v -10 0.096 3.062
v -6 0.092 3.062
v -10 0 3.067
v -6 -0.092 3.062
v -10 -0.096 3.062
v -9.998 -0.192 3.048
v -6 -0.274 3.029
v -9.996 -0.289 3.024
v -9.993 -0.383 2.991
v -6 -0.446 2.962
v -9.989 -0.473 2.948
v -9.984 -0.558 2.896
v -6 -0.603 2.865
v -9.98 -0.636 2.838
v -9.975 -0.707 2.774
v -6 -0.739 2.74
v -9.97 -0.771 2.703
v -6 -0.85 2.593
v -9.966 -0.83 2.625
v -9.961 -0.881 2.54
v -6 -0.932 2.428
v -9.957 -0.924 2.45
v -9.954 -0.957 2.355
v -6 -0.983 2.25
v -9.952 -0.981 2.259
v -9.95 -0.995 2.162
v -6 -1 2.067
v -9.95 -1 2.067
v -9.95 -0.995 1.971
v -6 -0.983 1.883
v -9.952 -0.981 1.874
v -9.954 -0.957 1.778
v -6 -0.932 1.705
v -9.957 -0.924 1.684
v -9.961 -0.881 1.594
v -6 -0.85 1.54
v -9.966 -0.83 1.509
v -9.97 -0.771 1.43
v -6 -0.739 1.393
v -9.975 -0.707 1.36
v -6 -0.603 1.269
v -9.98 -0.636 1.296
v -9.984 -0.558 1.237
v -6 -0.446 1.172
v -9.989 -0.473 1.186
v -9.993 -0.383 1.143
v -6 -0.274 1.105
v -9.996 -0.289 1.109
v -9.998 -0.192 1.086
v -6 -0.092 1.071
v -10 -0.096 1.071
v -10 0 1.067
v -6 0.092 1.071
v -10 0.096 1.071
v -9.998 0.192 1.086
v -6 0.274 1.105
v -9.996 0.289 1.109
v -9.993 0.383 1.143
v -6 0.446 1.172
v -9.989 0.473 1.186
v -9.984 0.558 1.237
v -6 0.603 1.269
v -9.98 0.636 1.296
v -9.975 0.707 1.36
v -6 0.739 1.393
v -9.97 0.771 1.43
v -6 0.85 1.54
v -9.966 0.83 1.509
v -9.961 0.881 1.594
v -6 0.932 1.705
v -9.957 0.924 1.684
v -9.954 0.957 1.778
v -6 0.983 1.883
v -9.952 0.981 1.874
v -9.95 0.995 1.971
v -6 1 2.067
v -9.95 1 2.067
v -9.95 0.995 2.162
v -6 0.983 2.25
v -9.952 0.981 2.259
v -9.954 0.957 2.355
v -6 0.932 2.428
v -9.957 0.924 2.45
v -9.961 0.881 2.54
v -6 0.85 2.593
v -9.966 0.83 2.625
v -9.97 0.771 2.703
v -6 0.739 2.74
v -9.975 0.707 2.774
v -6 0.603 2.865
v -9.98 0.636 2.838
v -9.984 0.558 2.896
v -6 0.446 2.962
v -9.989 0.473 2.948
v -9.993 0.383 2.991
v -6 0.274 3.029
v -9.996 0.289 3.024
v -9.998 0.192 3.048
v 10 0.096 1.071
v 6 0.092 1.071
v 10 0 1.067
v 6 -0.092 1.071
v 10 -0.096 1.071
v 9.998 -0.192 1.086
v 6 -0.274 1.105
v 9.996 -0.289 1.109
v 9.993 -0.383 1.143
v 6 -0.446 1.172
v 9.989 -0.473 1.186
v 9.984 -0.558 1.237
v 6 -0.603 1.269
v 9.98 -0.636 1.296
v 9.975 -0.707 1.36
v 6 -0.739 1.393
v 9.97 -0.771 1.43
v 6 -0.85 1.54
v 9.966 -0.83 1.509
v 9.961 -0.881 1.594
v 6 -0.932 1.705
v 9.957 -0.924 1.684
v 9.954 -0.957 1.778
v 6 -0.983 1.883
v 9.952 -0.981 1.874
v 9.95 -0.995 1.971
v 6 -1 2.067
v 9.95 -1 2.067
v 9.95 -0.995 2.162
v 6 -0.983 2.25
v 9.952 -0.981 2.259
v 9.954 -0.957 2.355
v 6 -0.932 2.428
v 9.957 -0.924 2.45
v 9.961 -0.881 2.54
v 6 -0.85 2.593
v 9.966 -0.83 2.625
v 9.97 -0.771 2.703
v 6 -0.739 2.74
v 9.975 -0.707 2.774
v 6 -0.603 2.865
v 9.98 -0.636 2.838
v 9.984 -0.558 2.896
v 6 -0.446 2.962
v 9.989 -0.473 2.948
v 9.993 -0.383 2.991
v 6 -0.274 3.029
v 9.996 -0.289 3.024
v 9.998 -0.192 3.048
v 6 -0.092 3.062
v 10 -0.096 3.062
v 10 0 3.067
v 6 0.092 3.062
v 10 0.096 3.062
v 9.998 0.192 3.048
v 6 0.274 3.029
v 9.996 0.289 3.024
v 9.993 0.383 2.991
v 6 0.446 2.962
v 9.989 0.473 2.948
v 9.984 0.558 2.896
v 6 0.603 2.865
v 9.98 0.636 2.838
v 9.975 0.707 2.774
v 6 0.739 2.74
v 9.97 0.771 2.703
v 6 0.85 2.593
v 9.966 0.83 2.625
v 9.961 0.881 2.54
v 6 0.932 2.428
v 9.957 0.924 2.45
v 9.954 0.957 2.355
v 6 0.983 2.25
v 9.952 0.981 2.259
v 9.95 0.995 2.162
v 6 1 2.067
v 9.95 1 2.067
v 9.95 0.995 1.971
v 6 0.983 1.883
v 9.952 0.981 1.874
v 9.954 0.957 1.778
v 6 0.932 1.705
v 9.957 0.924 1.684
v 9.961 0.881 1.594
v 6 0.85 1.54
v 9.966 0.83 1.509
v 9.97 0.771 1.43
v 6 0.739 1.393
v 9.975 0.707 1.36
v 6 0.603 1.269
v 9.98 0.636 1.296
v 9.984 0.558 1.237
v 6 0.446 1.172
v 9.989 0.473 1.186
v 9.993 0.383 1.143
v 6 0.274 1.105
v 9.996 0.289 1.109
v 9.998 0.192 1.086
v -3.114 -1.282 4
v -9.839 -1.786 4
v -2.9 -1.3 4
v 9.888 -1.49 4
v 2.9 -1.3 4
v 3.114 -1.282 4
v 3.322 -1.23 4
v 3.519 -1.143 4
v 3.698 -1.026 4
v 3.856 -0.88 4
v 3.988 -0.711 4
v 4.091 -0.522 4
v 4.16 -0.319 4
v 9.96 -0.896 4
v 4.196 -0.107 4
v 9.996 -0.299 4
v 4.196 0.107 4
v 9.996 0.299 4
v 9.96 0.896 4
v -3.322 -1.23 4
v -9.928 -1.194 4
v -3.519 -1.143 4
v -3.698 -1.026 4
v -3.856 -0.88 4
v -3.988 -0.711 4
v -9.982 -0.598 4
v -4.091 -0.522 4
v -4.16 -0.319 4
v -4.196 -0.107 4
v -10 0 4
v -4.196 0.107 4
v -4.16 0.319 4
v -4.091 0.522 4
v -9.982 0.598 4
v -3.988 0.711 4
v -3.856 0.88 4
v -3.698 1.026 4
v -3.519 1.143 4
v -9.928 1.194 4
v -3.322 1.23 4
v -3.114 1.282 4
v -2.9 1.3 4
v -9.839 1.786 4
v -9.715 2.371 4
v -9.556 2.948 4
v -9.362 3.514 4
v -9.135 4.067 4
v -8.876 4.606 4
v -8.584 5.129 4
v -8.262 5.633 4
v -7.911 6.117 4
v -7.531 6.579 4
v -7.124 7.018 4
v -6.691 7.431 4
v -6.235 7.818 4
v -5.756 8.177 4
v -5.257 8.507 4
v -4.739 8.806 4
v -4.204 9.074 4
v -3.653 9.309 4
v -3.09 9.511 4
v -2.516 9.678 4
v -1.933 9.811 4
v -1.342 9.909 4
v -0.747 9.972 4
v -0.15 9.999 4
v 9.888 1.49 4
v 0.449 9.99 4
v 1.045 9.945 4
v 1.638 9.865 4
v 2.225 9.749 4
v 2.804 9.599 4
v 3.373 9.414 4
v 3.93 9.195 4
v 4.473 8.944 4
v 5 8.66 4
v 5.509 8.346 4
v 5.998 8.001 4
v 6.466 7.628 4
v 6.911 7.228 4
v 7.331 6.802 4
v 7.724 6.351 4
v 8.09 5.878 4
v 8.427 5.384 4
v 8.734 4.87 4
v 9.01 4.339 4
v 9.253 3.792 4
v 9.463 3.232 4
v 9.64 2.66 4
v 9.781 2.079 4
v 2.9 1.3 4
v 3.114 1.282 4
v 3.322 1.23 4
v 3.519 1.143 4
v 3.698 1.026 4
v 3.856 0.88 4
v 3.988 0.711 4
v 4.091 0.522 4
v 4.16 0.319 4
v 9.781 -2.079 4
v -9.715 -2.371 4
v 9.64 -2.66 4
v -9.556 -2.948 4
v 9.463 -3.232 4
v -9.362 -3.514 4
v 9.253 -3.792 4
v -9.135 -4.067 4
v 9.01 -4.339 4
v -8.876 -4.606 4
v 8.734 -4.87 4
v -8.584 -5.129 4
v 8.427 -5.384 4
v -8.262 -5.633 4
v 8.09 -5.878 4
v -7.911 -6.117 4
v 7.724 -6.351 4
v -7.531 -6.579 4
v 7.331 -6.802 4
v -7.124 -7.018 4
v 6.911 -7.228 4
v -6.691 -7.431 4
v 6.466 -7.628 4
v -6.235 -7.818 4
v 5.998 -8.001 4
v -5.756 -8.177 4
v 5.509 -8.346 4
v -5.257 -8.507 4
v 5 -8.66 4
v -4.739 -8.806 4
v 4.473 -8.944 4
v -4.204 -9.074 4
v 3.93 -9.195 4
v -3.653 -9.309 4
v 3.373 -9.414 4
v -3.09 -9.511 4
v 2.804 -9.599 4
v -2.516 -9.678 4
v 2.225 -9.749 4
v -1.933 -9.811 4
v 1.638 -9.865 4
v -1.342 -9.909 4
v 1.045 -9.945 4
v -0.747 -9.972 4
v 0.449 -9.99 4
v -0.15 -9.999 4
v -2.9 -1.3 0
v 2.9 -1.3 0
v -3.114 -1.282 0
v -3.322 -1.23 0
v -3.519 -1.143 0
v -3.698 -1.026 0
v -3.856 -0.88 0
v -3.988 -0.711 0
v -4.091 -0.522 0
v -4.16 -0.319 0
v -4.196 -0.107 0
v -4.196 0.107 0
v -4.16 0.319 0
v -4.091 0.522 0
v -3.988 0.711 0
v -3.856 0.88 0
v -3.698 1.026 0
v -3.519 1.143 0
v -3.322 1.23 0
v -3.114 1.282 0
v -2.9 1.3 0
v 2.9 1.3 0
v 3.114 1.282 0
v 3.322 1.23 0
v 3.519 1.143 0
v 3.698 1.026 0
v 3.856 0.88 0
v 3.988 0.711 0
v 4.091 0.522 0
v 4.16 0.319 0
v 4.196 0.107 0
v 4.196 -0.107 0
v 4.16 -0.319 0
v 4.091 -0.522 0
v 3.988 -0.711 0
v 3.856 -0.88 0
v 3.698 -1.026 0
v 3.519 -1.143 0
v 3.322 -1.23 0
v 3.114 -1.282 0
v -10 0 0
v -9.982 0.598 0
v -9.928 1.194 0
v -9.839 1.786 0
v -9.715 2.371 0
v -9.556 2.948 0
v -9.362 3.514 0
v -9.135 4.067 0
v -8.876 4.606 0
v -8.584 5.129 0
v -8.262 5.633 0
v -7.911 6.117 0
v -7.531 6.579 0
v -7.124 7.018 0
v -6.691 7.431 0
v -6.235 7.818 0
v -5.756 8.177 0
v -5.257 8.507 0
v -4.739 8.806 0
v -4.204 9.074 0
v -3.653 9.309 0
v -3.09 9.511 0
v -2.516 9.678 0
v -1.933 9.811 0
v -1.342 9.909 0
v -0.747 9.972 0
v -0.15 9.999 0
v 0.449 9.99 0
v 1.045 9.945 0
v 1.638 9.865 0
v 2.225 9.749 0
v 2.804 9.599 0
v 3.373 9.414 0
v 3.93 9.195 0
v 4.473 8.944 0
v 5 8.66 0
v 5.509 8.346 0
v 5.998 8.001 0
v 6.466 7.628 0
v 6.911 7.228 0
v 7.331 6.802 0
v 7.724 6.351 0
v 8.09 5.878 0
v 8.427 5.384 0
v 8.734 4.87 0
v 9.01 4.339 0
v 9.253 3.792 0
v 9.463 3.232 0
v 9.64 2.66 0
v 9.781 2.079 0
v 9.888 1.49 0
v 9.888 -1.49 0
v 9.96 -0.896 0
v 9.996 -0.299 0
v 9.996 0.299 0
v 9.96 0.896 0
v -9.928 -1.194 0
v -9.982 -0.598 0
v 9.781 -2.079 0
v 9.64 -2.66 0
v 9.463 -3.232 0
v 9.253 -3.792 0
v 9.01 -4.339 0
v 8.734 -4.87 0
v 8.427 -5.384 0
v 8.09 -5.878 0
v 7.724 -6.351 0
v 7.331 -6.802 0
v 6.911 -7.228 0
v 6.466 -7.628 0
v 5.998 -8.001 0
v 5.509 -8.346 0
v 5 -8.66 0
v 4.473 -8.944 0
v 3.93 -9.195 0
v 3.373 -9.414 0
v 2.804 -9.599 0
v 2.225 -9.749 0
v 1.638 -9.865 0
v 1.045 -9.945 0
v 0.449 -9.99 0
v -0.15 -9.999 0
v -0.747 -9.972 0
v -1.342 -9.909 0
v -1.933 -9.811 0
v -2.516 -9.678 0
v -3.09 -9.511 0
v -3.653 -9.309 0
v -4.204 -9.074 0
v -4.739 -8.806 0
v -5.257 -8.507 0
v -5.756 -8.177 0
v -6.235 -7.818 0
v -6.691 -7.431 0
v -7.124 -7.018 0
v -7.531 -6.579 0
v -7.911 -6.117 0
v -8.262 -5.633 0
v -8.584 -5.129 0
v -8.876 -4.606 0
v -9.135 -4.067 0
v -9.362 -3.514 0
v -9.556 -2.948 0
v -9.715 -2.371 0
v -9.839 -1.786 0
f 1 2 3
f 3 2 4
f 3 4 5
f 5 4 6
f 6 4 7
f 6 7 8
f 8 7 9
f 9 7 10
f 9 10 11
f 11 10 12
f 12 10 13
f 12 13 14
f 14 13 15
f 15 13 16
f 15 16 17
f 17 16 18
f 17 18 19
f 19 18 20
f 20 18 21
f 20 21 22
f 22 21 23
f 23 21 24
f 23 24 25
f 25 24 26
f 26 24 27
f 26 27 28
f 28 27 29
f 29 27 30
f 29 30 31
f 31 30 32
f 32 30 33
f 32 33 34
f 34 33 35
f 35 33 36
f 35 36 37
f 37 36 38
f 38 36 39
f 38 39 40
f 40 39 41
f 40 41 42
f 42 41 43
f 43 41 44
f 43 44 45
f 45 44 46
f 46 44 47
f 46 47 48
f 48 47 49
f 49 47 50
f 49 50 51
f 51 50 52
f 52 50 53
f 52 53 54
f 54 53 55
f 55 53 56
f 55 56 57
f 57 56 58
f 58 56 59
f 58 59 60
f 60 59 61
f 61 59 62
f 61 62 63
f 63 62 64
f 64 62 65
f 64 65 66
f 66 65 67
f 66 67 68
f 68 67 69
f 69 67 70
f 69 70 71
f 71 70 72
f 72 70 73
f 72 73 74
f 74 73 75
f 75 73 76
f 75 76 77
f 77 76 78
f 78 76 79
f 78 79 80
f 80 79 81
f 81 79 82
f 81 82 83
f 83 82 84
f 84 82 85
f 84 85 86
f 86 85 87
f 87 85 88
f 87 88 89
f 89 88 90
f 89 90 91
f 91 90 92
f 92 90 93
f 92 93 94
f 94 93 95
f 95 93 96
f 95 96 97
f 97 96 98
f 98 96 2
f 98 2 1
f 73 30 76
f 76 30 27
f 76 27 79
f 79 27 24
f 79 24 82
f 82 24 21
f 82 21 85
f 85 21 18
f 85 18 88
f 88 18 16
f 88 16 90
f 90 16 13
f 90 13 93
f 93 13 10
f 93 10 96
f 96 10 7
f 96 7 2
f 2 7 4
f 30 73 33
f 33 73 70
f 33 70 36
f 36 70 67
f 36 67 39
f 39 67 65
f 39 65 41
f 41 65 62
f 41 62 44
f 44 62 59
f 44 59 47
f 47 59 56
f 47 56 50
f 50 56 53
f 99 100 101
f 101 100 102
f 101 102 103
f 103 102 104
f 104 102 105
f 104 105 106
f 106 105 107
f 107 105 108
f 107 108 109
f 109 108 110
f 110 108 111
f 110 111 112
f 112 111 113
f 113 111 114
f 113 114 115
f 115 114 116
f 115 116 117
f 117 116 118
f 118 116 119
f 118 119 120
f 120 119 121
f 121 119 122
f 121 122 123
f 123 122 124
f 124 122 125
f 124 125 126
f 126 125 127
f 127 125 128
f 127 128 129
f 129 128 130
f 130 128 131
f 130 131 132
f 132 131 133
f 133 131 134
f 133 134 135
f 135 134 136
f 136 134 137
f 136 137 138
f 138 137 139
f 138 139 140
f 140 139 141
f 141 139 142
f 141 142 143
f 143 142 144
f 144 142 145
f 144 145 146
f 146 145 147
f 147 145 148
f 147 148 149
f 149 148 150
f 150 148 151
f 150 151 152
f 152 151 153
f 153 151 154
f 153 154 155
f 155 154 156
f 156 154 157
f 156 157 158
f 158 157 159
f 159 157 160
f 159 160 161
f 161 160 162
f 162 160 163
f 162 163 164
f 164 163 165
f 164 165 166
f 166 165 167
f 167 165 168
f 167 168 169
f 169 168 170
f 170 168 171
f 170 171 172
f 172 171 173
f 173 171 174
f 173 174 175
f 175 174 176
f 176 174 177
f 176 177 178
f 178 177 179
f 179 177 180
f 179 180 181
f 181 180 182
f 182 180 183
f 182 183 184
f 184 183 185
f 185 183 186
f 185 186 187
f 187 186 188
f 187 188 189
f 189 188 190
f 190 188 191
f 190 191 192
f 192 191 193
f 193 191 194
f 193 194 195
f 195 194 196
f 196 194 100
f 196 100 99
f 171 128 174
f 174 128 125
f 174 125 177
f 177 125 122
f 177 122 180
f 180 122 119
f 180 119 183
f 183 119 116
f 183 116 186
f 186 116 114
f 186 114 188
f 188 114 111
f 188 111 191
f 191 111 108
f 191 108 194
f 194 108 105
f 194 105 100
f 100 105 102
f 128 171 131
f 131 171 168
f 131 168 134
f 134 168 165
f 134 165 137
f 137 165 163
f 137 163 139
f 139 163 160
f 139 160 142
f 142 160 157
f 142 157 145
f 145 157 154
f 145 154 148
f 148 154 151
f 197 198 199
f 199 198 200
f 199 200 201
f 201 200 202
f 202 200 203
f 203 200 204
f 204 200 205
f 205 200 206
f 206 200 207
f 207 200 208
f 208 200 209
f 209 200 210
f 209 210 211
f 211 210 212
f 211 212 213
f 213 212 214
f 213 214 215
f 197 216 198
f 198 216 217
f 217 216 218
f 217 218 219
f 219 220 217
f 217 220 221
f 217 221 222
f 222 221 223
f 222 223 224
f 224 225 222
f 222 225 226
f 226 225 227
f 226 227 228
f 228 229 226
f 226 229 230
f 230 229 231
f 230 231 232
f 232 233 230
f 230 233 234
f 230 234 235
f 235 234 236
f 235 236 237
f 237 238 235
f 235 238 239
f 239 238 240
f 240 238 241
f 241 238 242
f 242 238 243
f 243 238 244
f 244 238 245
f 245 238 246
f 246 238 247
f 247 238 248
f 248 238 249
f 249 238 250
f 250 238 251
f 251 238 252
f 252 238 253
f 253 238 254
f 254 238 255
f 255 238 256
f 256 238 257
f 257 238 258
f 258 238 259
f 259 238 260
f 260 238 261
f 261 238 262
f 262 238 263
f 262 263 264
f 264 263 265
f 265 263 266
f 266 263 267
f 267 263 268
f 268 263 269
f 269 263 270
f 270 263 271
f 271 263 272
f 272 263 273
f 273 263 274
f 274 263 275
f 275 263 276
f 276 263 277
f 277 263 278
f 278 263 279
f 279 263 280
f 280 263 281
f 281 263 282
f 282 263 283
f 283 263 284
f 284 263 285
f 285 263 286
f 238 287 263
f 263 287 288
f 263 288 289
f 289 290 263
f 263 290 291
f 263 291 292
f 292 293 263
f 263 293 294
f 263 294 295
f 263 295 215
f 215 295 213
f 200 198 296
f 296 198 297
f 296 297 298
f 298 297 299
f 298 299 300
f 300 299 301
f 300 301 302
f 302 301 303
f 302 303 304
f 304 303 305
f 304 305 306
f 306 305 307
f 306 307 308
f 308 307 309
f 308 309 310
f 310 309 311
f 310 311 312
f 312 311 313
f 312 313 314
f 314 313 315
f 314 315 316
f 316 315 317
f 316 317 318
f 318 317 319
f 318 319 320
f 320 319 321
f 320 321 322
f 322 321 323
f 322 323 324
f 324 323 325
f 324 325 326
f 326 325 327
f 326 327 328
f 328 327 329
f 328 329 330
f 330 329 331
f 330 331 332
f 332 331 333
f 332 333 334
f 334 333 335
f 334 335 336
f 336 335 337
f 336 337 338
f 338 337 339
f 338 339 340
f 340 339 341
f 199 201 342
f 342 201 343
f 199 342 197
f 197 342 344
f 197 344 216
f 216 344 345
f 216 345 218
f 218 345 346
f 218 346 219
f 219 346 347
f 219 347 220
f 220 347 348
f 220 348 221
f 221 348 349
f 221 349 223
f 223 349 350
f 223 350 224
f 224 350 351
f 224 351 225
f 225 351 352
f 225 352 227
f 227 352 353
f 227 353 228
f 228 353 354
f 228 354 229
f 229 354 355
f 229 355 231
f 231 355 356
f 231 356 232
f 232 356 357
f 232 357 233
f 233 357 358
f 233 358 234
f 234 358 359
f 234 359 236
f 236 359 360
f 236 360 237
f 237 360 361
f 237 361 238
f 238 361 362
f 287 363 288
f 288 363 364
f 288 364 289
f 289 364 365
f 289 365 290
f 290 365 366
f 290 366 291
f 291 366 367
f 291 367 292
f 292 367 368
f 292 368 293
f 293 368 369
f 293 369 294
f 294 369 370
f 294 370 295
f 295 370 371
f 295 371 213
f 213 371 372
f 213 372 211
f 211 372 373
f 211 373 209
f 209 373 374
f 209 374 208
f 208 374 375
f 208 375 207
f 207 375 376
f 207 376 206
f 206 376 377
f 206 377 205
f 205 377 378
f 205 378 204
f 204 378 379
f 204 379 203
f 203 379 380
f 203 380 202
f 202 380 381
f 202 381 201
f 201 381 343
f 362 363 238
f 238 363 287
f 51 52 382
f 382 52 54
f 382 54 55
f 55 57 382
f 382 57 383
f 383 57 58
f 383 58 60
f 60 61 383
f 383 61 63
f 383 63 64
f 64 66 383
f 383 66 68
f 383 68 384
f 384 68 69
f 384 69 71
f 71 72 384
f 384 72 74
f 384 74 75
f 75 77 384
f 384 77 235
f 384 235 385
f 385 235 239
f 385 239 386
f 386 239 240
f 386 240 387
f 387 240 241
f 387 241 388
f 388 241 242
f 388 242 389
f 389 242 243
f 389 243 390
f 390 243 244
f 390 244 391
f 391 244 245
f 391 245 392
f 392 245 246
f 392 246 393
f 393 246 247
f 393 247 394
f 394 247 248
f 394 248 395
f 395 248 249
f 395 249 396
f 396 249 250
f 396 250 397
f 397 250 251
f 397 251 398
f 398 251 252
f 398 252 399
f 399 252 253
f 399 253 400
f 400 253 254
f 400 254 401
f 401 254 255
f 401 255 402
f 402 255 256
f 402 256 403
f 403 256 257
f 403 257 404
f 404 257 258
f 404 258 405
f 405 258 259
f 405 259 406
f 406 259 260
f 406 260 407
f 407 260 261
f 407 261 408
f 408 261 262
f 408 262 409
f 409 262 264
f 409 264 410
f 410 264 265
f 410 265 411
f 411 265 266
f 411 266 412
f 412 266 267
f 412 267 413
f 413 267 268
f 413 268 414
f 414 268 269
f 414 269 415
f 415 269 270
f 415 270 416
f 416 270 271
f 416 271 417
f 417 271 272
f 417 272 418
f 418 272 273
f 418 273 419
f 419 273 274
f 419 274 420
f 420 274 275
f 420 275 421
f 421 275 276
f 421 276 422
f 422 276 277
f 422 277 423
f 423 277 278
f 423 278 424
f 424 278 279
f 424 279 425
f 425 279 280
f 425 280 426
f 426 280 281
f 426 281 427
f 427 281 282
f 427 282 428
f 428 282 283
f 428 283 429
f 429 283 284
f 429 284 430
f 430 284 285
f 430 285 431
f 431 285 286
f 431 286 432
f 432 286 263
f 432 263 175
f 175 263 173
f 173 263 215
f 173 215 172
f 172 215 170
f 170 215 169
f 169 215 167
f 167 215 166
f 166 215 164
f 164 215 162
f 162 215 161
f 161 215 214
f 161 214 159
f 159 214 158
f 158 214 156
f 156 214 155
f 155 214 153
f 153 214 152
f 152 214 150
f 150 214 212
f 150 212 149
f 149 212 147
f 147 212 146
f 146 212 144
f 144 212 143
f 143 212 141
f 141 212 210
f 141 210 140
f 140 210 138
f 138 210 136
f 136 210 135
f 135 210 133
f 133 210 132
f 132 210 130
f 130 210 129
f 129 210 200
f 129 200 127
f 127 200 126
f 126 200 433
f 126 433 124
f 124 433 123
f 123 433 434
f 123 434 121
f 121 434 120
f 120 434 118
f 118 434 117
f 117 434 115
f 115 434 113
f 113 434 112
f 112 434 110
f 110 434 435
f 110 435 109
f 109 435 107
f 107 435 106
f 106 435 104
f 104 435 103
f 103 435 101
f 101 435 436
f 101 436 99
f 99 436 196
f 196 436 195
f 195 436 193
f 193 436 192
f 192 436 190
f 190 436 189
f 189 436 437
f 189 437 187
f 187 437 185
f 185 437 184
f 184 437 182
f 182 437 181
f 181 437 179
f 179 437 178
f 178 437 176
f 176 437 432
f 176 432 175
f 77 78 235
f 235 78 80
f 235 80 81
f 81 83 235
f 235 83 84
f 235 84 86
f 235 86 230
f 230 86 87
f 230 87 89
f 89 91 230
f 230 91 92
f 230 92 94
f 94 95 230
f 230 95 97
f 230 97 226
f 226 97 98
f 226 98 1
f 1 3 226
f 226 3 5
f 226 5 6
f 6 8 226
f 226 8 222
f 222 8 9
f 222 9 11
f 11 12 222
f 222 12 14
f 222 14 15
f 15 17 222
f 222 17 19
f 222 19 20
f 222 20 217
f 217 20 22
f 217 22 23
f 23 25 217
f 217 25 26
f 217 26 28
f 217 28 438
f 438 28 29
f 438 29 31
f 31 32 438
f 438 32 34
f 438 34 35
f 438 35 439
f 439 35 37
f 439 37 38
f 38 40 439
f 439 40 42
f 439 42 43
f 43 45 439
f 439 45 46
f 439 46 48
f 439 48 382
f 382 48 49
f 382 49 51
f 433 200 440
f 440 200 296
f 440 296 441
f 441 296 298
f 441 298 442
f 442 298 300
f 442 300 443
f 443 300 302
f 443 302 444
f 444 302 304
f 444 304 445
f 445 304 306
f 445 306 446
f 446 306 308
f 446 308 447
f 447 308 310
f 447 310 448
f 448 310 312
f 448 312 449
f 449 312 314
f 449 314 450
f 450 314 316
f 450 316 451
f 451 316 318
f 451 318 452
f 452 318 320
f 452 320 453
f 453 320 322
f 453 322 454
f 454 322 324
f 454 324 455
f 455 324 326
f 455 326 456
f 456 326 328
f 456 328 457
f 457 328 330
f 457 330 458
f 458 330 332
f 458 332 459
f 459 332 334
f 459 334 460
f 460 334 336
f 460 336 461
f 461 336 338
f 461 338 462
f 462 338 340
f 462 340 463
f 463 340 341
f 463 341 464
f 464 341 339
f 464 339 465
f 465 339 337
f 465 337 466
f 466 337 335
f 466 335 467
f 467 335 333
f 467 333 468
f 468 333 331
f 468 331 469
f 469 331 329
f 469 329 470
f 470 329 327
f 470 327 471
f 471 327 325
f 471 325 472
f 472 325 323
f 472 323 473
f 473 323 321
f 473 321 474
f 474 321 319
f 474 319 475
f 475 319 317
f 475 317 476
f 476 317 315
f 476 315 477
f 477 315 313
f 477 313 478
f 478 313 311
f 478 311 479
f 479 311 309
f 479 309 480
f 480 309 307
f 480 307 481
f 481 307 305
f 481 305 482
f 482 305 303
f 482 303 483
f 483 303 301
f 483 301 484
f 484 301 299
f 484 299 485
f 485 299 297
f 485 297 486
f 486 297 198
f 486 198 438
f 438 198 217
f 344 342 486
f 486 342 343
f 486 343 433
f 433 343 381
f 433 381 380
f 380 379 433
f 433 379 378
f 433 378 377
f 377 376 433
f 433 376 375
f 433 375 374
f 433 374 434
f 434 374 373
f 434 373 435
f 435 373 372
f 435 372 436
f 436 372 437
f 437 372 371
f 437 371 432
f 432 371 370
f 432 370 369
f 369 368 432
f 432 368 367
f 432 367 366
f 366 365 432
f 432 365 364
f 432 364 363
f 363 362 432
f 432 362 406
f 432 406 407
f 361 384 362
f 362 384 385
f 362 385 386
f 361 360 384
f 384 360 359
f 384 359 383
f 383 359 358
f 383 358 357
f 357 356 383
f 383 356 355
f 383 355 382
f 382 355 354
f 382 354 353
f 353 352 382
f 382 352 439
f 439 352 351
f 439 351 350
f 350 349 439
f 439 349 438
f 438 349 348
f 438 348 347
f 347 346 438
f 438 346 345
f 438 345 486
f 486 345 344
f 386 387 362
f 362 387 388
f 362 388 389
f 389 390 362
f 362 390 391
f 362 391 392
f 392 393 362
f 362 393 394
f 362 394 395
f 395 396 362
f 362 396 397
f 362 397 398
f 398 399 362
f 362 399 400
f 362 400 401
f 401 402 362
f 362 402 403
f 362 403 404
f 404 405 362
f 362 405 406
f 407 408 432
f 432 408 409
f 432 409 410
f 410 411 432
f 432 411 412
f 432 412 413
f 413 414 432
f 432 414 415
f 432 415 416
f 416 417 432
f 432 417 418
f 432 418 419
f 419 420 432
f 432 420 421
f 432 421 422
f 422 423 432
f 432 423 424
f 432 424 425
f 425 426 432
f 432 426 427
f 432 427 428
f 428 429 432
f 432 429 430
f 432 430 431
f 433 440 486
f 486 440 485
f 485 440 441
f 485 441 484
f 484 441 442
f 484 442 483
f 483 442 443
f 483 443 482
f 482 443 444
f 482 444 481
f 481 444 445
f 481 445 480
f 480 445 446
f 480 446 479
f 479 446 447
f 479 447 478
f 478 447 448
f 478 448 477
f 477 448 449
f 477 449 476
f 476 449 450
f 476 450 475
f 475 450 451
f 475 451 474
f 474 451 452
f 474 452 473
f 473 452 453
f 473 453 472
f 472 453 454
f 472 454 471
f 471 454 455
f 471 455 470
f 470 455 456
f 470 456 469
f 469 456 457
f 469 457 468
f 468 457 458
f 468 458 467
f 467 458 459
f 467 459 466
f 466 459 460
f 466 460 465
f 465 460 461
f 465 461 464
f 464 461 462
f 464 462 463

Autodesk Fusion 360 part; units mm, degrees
sketch "Sketch1" plane through (0, 0, 0) normal (0, 0, 1) x (1, 0, 0)
  circle A0 centre (0, 0) radius 10
  dimension "d1" = 20
extrude "Extrude1" add sketch "Sketch1" along normal blind 3
sketch "Sketch2" plane through (0, 0, 3) normal (0, 0, 1) x (-1, 0, 0)
  circle A0 centre (0, 0) radius 10
  line L0 (-4.2, 1.3) -> (4.2, 1.3)
  line L1 (4.2, 1.3) -> (4.2, -1.3)
  line L2 (4.2, -1.3) -> (-4.2, -1.3)
  line L3 (-4.2, -1.3) -> (-4.2, 1.3)
  line L4 (-4.2, 1.3) -> (4.2, -1.3) construction
  line L5 (4.2, 1.3) -> (-4.2, -1.3) construction
  dimension "d4" = 8.4
  dimension "d5" = 2.6
extrude "Extrude2" cut sketch "Sketch2" against normal blind 6 contours L0 L1 L2 L3
fillet "Fillet1" radius 1.3 4 edges at (4.2, 1.3, 1.5) (4.2, -1.3, 1.5) (-4.2, 1.3, 1.5) (-4.2, -1.3, 1.5)
extrude "Extrude3" add 1 faces at (-0.2491, -4.1907, 3) along direction (0, 0, 1) blind 1
hole "Hole1" at (10, 0, 2.0667) direction (-1, 0, 0) diameter 2 depth 4 tip angle 180
mirror "Mirror1" about plane through (0, 0, 0) normal (1, 0, 0) of "Hole1"
